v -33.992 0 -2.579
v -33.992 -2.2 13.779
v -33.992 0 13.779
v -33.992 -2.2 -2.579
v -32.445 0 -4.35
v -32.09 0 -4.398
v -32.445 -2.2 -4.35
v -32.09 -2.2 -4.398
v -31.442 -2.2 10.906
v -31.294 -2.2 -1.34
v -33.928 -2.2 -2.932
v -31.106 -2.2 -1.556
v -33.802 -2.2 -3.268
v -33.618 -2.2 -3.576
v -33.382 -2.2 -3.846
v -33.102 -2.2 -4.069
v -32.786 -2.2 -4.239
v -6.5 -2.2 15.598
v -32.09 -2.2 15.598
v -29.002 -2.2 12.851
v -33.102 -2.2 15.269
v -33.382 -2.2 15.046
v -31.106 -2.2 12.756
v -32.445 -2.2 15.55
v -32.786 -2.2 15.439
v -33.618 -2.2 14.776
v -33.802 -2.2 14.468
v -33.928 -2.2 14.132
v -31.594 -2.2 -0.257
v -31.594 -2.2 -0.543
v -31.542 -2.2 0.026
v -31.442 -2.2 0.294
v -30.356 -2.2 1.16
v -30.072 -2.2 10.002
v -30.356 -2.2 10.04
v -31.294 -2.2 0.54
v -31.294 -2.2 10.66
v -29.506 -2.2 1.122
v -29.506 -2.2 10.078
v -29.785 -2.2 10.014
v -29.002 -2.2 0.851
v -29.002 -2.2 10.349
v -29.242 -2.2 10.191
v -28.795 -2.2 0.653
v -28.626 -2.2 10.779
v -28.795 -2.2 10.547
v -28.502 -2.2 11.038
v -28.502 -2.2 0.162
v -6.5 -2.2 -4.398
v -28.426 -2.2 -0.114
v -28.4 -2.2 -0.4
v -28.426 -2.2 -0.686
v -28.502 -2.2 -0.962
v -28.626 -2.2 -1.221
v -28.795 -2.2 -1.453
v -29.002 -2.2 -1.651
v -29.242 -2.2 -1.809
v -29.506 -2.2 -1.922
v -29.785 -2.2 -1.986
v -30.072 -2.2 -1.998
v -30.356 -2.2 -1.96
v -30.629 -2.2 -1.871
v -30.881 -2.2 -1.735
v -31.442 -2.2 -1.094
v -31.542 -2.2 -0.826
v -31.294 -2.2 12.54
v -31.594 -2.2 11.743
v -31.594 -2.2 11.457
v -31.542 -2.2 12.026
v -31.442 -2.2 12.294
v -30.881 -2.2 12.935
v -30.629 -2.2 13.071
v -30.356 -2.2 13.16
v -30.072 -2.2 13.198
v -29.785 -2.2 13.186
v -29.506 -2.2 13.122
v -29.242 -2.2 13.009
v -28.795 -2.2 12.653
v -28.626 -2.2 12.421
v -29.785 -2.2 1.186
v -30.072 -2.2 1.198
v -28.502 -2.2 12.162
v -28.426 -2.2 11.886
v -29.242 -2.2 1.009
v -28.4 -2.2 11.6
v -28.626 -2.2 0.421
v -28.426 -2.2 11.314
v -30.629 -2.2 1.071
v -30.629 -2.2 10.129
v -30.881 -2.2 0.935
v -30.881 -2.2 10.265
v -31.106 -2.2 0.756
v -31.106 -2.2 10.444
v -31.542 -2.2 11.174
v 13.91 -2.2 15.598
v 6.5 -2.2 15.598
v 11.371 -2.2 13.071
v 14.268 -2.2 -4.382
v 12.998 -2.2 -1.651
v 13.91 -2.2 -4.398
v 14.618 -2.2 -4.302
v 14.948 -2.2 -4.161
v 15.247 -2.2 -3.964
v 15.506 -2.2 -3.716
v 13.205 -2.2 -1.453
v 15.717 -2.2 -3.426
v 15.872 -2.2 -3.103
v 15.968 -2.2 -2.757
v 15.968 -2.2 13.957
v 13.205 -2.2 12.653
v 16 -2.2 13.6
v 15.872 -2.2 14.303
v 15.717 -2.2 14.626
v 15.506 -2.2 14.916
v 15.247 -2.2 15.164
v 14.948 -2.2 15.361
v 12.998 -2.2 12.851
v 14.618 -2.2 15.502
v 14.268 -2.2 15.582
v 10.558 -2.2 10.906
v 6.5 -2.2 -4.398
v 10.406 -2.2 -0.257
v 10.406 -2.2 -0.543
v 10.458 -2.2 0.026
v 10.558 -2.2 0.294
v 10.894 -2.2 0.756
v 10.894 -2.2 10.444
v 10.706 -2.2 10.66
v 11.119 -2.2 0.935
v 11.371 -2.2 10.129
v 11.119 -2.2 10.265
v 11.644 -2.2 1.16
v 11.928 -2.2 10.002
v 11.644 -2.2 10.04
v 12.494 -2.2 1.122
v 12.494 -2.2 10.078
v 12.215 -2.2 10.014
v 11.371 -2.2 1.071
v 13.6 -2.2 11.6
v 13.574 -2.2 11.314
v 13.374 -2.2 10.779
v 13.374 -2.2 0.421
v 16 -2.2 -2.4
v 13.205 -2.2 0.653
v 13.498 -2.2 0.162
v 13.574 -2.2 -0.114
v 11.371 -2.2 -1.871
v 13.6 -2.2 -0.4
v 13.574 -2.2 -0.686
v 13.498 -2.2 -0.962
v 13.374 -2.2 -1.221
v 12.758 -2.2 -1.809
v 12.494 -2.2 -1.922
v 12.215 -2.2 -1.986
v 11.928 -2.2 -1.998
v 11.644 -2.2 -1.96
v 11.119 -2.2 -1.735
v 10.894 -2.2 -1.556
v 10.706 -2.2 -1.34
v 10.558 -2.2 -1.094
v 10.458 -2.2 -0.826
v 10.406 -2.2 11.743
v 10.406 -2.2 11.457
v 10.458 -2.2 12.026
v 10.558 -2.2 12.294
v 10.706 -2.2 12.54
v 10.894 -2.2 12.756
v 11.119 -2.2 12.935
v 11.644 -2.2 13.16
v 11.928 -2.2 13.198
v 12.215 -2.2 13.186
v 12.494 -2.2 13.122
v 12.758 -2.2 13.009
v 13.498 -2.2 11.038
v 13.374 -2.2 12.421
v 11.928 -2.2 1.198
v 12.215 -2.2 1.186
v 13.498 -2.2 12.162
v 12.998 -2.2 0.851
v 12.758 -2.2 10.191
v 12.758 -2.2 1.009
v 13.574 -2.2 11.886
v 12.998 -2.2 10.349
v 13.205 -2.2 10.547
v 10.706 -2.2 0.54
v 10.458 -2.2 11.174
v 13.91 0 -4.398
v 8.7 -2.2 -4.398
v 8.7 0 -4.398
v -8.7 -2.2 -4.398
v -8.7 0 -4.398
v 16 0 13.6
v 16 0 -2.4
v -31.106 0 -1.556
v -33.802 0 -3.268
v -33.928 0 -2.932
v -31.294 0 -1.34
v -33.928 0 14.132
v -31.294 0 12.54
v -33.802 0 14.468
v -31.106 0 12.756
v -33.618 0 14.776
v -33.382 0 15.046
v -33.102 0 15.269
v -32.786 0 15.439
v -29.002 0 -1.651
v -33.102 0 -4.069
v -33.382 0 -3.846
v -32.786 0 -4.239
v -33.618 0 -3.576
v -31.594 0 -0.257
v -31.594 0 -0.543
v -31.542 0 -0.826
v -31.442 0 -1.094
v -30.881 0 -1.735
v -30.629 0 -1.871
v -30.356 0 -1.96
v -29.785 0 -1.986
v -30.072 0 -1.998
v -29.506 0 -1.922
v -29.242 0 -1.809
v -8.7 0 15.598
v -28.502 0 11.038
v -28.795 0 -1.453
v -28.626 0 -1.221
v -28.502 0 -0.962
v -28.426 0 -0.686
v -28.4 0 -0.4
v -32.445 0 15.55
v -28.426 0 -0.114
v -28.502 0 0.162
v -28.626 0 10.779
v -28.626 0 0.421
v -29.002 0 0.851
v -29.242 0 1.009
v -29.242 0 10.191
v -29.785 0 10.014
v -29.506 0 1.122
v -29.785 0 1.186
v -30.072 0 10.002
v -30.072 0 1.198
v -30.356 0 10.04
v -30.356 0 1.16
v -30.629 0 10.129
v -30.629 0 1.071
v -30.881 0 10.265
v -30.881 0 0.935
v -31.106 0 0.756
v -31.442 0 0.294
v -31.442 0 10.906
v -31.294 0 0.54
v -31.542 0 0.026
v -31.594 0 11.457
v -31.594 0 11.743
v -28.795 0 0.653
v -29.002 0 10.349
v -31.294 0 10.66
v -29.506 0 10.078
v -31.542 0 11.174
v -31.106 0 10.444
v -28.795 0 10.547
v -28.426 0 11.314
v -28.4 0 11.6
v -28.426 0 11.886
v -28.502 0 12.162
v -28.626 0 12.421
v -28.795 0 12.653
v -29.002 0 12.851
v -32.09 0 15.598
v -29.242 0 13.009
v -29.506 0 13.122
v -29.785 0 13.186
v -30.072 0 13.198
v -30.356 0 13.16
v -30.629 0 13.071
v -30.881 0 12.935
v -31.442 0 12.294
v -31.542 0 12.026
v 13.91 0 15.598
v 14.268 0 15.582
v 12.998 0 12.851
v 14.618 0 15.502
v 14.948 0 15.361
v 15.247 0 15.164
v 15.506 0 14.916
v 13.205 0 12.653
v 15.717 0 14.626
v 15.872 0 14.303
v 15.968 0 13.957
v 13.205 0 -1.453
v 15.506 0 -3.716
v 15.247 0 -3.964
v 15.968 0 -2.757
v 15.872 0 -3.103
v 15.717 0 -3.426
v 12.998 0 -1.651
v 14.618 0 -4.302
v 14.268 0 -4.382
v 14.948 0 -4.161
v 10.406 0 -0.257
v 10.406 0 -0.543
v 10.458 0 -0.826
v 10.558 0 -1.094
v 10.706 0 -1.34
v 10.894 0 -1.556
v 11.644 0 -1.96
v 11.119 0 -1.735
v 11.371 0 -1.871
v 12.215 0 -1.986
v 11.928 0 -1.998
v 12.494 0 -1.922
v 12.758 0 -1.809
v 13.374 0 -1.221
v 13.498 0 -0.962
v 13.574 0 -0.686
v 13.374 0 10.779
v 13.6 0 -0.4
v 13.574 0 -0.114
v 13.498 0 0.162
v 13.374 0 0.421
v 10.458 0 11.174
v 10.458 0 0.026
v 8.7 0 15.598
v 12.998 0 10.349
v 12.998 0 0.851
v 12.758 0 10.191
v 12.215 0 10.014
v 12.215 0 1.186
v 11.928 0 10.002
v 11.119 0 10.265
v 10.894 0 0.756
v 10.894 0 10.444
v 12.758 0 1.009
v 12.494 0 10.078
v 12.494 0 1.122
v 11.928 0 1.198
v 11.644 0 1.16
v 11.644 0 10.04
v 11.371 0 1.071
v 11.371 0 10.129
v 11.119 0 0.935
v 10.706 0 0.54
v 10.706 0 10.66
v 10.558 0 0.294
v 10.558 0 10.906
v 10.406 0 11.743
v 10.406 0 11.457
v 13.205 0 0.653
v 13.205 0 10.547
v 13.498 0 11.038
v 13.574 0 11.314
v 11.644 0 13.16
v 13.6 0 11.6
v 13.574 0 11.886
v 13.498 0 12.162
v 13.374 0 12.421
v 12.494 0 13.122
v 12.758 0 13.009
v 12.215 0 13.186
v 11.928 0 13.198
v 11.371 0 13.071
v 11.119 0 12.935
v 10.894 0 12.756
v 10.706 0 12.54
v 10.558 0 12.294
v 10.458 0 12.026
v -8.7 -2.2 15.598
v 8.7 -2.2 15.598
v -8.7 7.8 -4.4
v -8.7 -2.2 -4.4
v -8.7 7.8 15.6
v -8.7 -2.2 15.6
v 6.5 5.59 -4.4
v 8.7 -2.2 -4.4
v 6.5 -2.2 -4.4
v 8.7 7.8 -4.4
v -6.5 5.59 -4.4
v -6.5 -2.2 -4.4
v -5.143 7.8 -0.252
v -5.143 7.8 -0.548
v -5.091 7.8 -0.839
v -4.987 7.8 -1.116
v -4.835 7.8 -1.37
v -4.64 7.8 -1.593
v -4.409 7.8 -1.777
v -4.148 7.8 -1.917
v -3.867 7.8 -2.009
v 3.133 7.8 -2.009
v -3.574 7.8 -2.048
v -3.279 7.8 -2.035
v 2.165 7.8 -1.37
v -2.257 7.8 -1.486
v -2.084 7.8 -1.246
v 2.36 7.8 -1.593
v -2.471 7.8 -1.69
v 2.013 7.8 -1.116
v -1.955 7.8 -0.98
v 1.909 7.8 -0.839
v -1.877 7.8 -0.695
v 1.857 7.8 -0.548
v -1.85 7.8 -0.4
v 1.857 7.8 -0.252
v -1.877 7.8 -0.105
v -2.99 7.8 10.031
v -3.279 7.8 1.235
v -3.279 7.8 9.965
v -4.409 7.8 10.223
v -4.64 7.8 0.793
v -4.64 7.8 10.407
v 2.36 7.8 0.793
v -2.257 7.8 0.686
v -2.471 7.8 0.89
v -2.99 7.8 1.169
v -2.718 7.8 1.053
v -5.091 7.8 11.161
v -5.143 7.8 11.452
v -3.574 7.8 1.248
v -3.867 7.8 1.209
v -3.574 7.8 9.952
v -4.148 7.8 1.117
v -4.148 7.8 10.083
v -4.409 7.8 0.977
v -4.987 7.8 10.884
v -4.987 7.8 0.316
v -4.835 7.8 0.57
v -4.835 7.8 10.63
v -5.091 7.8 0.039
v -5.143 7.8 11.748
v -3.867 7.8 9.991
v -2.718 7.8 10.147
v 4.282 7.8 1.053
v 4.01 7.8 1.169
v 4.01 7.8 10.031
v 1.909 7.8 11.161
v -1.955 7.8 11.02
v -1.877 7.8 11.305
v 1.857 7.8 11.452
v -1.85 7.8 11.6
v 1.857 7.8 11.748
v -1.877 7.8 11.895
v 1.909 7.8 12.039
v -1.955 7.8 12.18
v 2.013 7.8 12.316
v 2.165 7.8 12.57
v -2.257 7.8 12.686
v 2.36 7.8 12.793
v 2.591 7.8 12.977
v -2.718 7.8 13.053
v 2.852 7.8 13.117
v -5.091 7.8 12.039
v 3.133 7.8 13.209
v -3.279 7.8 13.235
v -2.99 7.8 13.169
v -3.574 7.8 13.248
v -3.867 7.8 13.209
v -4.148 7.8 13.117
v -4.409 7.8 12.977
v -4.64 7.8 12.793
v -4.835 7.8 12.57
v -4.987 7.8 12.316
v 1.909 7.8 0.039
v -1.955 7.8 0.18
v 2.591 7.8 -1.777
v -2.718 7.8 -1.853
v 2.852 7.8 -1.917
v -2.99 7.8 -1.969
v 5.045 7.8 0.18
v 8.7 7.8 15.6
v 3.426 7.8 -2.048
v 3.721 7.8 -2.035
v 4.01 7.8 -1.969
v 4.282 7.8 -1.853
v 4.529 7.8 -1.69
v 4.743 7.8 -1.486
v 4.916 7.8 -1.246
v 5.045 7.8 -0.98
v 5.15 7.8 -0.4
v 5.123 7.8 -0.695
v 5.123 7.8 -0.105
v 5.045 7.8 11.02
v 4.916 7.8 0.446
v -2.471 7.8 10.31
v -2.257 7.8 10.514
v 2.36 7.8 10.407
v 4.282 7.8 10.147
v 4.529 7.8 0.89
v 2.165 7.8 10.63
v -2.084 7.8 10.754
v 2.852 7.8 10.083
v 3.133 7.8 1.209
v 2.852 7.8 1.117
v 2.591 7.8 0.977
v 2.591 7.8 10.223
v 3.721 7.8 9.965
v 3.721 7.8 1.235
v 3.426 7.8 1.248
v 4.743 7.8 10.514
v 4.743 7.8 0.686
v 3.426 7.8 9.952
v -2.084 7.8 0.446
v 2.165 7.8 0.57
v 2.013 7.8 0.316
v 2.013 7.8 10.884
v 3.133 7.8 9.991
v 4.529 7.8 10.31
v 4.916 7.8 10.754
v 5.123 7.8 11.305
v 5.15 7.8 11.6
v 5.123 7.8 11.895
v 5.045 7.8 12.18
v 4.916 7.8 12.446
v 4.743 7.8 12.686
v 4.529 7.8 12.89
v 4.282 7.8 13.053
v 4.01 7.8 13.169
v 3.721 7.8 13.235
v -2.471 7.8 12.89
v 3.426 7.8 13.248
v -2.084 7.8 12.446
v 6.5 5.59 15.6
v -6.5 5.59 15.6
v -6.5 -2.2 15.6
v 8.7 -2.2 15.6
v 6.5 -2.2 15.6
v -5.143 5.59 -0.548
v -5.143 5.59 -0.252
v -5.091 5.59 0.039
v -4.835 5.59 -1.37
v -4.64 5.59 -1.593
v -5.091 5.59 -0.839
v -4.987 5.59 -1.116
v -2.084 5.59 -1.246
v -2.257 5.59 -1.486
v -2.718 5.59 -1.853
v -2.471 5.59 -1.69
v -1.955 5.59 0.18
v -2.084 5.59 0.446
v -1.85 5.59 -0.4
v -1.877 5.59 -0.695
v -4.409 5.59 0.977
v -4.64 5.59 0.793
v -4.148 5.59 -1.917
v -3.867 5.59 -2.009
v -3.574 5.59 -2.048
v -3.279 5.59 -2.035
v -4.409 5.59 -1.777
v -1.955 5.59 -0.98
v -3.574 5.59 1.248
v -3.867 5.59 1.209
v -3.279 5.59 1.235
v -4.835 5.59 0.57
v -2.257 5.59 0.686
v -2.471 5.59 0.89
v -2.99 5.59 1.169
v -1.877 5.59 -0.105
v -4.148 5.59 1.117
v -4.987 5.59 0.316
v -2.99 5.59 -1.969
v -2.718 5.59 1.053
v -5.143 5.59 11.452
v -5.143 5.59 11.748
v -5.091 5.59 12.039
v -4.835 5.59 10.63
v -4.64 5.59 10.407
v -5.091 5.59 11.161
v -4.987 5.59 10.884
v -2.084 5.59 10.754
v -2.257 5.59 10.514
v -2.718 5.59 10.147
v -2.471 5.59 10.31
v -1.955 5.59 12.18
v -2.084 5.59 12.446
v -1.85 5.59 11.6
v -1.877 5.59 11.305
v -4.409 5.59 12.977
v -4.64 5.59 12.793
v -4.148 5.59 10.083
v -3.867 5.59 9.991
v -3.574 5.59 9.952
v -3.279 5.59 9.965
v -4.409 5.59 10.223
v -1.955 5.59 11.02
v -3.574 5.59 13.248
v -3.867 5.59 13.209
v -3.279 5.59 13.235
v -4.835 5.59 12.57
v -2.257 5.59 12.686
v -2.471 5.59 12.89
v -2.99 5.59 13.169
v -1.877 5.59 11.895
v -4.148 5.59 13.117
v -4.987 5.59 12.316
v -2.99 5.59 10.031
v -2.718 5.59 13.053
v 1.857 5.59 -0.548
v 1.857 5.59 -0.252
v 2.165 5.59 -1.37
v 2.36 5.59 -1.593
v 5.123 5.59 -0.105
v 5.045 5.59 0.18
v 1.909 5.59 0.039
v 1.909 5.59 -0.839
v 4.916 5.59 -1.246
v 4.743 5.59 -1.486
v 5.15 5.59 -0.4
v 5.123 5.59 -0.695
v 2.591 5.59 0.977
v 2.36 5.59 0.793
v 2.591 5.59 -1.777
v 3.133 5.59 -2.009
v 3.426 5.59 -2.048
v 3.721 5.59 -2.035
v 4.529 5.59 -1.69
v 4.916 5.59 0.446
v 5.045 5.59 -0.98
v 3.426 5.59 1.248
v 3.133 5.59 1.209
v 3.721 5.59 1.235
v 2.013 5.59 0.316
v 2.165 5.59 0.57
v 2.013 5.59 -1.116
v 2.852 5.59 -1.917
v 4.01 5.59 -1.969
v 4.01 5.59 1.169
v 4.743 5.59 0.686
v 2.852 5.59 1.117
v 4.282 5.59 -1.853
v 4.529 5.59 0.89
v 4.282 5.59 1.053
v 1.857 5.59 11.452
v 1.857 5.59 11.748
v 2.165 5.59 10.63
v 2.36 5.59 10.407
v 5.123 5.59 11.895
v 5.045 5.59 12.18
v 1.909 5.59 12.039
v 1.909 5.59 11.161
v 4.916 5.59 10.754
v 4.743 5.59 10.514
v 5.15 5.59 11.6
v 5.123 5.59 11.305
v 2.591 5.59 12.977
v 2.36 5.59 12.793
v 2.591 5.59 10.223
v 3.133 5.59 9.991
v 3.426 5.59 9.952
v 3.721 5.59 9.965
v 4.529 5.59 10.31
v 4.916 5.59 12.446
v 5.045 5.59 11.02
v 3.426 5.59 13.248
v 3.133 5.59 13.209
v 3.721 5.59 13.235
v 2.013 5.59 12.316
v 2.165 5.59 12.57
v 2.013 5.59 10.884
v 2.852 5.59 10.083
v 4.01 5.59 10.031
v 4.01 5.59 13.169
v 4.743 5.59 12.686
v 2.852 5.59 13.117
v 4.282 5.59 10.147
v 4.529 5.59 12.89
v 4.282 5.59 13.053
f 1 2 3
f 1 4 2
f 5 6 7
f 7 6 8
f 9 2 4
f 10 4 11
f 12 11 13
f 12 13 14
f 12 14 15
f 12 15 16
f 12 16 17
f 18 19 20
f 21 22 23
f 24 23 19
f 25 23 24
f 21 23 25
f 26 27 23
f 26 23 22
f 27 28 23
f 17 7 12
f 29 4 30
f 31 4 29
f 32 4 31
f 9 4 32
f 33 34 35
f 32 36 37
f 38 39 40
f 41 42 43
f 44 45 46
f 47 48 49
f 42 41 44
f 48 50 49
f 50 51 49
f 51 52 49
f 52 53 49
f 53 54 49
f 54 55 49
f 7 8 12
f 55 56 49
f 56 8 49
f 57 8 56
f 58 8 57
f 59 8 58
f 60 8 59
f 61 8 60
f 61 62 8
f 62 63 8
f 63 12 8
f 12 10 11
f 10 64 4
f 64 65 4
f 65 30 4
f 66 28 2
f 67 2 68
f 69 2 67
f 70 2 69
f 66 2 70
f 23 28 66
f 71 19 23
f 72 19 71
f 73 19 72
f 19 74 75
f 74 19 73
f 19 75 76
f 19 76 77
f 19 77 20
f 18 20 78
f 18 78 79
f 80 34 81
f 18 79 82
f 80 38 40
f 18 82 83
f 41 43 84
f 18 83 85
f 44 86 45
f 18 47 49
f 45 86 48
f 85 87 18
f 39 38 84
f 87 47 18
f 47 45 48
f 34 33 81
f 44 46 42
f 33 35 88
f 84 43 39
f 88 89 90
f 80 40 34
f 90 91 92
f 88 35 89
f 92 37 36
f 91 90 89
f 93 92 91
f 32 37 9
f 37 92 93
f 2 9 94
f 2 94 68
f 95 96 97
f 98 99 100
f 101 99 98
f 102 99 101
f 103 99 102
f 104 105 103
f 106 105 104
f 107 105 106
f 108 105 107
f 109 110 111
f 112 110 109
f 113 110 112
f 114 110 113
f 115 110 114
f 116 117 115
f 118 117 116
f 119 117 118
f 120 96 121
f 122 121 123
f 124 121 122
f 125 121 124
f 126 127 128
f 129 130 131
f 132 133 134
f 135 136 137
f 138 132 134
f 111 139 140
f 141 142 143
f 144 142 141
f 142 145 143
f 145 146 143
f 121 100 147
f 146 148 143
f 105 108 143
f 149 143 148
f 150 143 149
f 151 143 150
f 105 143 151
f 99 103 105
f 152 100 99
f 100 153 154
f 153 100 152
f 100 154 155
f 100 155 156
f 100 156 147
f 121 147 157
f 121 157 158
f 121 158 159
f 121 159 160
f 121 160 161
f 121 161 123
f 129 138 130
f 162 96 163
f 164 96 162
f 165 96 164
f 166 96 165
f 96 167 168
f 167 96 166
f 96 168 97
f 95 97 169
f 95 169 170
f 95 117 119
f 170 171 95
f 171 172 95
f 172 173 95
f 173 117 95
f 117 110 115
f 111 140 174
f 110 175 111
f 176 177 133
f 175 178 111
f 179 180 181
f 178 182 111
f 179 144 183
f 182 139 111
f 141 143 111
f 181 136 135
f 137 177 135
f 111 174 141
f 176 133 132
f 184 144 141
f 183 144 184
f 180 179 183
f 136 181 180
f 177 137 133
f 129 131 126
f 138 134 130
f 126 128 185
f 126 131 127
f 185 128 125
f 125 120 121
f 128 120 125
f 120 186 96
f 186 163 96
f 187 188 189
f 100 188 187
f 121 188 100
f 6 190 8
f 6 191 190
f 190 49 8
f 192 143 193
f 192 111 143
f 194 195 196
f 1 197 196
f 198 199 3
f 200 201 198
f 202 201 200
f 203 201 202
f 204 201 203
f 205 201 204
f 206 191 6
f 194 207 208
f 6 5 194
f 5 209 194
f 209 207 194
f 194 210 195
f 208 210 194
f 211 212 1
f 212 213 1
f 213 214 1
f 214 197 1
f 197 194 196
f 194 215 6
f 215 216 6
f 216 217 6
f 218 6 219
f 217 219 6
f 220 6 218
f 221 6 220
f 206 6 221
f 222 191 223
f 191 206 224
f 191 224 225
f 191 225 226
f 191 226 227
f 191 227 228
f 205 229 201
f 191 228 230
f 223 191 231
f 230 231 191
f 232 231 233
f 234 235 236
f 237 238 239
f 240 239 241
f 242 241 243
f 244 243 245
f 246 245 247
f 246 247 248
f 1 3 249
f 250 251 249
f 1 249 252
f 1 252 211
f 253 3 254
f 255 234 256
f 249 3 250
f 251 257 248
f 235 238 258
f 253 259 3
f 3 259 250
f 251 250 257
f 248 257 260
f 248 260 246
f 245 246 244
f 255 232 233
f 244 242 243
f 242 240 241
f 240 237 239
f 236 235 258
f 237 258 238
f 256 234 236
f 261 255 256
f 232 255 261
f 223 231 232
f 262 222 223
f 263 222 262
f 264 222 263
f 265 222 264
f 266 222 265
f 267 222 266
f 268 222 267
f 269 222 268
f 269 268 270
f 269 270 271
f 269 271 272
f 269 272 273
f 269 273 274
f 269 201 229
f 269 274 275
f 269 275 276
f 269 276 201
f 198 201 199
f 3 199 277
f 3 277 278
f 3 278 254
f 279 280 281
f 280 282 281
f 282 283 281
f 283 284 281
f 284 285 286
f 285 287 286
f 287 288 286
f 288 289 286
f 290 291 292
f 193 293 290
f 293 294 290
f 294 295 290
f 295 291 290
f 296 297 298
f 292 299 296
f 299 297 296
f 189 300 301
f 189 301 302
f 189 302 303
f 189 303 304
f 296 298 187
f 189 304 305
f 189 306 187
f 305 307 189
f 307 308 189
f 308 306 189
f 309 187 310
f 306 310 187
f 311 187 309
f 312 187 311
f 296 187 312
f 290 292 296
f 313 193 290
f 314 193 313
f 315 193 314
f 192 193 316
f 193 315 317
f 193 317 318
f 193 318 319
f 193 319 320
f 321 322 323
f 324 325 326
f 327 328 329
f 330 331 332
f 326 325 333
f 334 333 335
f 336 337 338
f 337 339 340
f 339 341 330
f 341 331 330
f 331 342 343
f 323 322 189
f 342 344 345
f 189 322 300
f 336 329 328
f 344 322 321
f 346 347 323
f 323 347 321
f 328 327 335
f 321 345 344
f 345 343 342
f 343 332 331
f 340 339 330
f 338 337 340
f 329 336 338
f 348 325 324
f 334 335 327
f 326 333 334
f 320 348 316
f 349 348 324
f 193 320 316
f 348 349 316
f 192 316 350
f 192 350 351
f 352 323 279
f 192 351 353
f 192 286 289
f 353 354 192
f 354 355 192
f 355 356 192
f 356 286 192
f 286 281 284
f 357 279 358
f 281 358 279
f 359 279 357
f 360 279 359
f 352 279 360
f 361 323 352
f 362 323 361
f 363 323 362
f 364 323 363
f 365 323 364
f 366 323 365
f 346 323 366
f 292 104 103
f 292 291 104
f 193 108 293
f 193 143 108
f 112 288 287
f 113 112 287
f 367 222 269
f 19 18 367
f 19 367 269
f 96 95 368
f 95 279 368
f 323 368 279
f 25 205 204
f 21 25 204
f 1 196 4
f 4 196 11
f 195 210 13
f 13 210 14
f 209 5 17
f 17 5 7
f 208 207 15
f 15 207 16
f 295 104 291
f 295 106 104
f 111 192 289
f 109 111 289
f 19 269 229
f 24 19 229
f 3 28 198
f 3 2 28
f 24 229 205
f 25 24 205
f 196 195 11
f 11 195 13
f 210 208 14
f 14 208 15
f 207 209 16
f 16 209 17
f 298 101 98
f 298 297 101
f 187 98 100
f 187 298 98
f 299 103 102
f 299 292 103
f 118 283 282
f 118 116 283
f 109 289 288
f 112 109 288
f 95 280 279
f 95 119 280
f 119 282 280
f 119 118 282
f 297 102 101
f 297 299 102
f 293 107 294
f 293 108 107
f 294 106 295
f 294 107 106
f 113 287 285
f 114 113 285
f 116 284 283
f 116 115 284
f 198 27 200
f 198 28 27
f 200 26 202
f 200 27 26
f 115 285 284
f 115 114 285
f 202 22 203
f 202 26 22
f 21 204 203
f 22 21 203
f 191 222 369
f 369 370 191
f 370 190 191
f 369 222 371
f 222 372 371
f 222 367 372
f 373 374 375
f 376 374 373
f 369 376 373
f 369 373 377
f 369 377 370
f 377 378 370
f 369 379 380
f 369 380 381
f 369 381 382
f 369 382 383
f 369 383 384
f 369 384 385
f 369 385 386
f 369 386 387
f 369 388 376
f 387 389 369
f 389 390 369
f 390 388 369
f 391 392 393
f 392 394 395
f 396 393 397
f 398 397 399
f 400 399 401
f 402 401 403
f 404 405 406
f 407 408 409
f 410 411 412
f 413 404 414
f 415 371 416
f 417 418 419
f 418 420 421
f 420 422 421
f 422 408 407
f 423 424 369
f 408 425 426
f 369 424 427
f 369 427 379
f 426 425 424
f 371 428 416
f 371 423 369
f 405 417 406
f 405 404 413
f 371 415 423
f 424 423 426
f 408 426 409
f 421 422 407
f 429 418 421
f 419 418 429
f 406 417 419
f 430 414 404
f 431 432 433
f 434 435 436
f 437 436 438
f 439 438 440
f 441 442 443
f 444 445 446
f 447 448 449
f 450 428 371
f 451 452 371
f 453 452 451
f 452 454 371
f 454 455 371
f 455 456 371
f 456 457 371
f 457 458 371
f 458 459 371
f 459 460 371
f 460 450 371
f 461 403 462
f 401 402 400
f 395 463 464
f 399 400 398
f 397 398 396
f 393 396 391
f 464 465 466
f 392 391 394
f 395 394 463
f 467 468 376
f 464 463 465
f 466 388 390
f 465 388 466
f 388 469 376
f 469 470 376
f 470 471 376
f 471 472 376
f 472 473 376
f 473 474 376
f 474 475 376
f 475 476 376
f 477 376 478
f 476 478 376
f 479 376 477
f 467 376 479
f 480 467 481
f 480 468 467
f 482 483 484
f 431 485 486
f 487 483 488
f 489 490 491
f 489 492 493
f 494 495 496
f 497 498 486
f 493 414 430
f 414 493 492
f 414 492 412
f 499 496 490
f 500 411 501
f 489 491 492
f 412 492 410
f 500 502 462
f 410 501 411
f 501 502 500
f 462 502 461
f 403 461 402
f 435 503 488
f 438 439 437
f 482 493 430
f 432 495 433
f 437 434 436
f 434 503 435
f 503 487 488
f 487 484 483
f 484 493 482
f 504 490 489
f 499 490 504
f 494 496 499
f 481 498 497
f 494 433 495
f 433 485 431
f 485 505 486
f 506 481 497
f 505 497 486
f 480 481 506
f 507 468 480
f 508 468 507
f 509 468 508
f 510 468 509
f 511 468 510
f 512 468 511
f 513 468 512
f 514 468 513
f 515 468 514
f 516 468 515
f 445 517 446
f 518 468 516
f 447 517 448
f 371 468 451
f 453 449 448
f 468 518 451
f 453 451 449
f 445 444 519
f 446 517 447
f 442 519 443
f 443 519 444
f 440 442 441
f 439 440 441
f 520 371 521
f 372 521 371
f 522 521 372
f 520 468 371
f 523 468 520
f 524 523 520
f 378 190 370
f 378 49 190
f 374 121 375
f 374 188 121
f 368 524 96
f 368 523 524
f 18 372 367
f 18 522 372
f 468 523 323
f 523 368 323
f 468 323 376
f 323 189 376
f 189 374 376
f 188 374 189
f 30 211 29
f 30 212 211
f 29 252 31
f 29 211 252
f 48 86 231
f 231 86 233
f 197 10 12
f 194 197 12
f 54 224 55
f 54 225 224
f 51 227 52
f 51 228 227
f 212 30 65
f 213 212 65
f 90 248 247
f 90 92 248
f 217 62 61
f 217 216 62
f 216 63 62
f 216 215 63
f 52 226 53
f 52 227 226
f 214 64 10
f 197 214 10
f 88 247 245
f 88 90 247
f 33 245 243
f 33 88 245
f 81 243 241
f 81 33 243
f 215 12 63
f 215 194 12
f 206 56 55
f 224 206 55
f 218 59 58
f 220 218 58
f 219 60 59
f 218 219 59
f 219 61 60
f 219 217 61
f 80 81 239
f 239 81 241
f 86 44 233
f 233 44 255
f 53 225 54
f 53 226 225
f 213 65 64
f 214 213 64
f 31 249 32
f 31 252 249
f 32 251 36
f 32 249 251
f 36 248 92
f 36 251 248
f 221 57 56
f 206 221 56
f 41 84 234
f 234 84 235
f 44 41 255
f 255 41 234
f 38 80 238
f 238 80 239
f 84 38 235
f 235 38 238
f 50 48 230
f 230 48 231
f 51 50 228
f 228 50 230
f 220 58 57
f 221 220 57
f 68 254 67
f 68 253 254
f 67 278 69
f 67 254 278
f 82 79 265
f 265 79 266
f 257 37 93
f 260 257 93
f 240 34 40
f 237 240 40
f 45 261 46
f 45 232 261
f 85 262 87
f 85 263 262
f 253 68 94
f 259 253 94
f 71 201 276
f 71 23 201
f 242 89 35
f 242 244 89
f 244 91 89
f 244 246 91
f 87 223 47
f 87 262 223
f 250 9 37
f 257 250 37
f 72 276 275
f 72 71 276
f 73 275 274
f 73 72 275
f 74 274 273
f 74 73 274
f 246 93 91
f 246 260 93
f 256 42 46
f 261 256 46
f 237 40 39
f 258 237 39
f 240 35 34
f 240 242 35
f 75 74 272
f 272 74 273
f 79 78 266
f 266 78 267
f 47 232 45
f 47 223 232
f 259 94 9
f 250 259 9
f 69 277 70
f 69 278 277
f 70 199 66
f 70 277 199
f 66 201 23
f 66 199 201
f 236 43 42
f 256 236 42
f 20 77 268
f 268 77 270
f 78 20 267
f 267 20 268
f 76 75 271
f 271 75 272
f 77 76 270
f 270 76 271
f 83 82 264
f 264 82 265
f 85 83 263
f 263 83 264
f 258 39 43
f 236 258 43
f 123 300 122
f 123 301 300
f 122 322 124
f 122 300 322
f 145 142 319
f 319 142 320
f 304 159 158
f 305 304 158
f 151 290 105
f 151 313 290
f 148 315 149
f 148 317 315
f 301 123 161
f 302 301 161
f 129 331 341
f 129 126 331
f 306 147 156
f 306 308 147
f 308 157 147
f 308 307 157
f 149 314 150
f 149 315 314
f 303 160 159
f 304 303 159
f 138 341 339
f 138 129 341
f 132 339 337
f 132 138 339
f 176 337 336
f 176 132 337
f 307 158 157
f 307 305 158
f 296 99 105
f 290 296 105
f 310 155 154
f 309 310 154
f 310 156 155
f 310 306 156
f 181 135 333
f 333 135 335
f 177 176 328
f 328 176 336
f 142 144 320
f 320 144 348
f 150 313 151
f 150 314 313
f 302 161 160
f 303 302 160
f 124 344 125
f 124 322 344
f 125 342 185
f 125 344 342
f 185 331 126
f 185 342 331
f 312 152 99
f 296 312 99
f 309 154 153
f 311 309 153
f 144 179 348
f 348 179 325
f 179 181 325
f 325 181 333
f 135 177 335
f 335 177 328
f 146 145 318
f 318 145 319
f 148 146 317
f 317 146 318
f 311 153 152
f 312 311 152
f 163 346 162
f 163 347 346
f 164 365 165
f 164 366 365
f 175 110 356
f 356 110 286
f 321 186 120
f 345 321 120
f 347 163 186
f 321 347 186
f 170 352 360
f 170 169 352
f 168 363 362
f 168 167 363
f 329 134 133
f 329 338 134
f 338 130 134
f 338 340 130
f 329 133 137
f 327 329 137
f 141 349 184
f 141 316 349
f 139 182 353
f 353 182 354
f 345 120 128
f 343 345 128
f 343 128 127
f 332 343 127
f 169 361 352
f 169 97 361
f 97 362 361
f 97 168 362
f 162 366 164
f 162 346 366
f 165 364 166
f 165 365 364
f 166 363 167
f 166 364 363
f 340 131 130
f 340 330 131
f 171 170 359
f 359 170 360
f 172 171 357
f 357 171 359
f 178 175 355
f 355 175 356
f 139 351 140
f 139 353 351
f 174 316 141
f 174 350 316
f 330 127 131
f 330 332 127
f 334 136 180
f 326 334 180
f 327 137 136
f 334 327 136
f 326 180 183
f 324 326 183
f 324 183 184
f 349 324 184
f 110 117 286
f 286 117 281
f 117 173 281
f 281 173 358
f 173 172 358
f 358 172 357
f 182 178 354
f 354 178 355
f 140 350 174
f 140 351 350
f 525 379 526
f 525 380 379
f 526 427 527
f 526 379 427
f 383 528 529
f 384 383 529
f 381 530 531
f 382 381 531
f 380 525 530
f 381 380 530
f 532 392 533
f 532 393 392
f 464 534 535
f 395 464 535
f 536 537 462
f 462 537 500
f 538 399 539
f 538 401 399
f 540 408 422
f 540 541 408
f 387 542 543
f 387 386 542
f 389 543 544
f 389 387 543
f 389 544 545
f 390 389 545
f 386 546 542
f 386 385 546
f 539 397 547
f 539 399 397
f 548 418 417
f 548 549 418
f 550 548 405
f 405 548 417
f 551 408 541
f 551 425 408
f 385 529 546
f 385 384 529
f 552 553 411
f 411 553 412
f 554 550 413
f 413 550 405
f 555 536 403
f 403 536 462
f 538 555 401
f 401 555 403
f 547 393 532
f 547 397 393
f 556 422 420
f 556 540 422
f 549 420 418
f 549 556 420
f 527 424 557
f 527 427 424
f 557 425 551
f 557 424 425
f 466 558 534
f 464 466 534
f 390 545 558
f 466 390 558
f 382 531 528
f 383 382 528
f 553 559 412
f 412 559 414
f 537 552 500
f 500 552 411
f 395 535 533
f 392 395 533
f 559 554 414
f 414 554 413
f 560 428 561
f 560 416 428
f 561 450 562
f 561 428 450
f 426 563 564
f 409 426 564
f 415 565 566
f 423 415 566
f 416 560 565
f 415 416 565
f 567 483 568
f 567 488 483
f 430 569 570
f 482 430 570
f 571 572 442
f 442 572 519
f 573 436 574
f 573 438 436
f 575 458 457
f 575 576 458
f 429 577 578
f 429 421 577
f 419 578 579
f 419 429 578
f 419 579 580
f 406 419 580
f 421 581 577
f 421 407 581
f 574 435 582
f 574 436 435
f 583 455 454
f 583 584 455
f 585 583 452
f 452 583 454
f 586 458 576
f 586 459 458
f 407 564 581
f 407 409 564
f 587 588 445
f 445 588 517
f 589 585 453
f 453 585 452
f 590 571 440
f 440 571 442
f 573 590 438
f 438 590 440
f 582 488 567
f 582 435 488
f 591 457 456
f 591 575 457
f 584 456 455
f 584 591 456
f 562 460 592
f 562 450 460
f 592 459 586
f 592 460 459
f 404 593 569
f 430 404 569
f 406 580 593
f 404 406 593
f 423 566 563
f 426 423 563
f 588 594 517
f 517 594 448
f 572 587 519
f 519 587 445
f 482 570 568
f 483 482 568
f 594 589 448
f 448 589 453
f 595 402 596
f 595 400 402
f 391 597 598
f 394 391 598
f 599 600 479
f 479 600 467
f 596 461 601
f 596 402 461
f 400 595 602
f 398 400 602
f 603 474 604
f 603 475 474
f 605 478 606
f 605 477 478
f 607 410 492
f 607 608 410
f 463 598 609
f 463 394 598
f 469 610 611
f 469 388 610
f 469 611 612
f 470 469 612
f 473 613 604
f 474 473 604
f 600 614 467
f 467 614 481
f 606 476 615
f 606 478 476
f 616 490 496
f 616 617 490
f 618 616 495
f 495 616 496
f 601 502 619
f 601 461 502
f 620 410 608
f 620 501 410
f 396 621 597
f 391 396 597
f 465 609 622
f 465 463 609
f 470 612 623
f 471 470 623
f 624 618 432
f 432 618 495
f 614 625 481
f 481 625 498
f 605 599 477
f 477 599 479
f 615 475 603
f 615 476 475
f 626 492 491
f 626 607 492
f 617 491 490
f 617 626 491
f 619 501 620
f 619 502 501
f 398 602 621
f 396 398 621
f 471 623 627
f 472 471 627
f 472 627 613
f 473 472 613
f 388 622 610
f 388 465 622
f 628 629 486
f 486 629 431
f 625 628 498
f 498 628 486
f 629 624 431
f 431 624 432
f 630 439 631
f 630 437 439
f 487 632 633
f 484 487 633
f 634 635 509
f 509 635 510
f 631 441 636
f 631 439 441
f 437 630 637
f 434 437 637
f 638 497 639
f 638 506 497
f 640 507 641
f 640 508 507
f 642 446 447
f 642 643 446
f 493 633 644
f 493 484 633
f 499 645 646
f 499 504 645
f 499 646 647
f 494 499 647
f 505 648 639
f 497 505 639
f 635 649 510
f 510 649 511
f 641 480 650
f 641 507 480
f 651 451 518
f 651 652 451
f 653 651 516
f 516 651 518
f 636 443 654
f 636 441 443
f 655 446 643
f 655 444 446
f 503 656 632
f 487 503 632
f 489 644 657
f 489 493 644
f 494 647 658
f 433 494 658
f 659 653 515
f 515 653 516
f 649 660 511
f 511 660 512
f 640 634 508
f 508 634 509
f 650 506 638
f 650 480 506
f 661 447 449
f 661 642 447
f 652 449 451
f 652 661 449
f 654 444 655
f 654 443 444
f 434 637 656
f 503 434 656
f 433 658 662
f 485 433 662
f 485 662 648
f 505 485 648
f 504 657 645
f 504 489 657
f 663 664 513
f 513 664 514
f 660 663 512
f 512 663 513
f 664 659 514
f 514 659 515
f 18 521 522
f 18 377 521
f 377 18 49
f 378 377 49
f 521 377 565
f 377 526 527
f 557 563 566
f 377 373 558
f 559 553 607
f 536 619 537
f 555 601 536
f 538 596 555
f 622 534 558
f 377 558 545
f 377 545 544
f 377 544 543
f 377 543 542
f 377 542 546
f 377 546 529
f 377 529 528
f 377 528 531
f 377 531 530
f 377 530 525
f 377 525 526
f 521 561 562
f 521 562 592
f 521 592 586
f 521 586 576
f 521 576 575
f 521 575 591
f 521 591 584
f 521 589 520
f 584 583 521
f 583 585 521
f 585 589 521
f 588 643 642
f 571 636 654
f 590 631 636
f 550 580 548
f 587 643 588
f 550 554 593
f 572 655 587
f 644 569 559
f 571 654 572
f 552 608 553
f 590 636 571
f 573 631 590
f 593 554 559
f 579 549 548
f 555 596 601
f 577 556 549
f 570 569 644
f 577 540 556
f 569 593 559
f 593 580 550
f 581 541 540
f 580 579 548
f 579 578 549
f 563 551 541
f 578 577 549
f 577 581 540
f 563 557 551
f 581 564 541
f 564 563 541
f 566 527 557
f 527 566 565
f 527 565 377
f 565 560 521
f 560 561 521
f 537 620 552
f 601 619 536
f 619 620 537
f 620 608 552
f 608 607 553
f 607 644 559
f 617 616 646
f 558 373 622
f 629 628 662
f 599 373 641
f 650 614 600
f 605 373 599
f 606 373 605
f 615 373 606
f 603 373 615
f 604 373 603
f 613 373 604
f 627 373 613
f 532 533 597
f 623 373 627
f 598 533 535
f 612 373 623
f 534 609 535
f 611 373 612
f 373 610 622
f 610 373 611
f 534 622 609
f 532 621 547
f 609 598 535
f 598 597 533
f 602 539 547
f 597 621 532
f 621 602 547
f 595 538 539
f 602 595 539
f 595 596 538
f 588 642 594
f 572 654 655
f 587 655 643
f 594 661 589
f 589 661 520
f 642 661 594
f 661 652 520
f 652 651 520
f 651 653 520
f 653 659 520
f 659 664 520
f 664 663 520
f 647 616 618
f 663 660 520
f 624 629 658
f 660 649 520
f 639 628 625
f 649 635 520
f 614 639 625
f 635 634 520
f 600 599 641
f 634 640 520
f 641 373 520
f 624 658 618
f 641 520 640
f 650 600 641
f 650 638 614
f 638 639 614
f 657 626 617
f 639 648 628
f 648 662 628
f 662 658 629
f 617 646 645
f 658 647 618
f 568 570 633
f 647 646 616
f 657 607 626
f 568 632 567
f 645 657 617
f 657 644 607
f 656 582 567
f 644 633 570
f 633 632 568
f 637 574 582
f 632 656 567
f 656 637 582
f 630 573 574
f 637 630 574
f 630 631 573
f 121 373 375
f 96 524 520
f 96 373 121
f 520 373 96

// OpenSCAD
// file: ../../util/rounded.scad
// Do a rounded cube
module rounded(x=10, y=10, z=10, r=3, center=false) {
  if (center) {
    translate([-(x/2),-(y/2),0])
      rounded(x, y, z, r);
  } else {
    translate([r,r,0])
    minkowski() {
      cube([x-2*r,y-2*r,z/2]);
      cylinder(h=z/2, r=r);
    }
  }
}
// file: ../../util/hole3.scad
module hole3()
{
    cylinder(d=3.5, h=99, center=true);
}
// file: ../../util/repeat4.scad
module repeat4()
{
    for (r=[0:3])
    rotate([0,0,90*r])
    children();
}
// file: ../../util/hexapath.scad
// Follow an hexagonal path
module hexapath(X, Y, thickness, center=false)
{
    union() {
        linear_extrude(thickness, center=center)
            polygon(points=[
                    [X, Y], [X, -Y], 
                    [Y, -X], [-Y, -X],
                    [-X, -Y], [-X, Y],
                    [-Y, X], [Y, X], 
            ]);
    }
}
// file: ../../models/ollo.scad
// Diameter of plastic ollo holes
OlloHoles = 4.3;

// Width of Ollo "real" plastic
OlloWidth = 3;

// Distance between two ollo holes
OlloSpacing = 6;

// Do an Ollo hole on the part
module olloHole(depth=2.2)
{
    translate([0,0,-0.1])
      cylinder(depth+0.2, OlloHoles/2, OlloHoles/2);
}

// Do 3 ollo holes
module threeOllo(depth=2.2)
{
  for (xy=[[-OlloSpacing,0],[0,0],[OlloSpacing,0]]) {
    translate([xy[0], xy[1], 0])
    olloHole(depth);
  }
}

// Do a servo arm holes
module servoArm(depth=2.2)
{
    threeOllo(depth);
    rotate([0,0,90])
      threeOllo(depth);
}
// file: ../../parts/batfix.scad
include <../models/ollo.scad>;
use <../util/rounded.scad>;
use <../util/screws.scad>;

module batfix(thickness=2.2, cavity=13, height=10, screws=3.2,print=false)
{
	shift=9;
	holesSpacingW = OlloSpacing*7;
	holesSpacingH = OlloSpacing*2;
	R=print?[90,0,0]:[0,0,0];
	translate([-shift,0,height-2*thickness])
	rotate(R)
	difference() {
		union() {
			rounded(50, 20, thickness, 2, center=true);
			translate([shift,0,thickness-height/2])
			cube([cavity+2*thickness,20,height], center=true);
		}
		
		for (X=[-holesSpacingW/2, holesSpacingW/2])
		for (Y=[-holesSpacingH/2, holesSpacingH/2])
		translate([X,Y,-1])			
			cylinder(d=screws, h=thickness+2);
		
		translate([shift,0,0.01+2*thickness-height/2])
			cube([cavity,22,height], center=true);
		
		translate([shift,0,thickness-height])
			children();
	}
}

batfix();
// file: ../../parts/leg.scad
use <../models/ollo.scad>;
use <../util/rounded.scad>;

module leg(sizeA=60, sizeB=20, sizeC=20, sizeBottom=10,
        sizeTop=15, mode="arm", fixationAngle=0, thickness=2.2, print=false)
{
    xOffset = (mode == "side") ? -10 : 0;
    spacing = (mode == "side") ? 24 : 30;

    module legSide()
    {
        difference() {
            union() {
                translate([0,0,sizeA/2])
                    rotate([0,90,0]) {
                        cube([sizeA, 20, thickness], center=true);
                        if (mode == "side") {
                            translate([15-sizeA/2, 10, -thickness/2])
                                rotate([0,0,+fixationAngle])
                                rounded(25,10,thickness, center=true);
                        }
                    }
            }
            translate([-thickness, 0, sizeA-15]) {
                rotate([90,0,90]) {
                    if (mode == "arm") {
                        servoArm(2*thickness);
                    }
                }
                if (mode == "side") {
                    translate([0,10,0])
                        rotate([90,90-fixationAngle,90])
                        threeOllo(2*thickness);
                }
            }
        }
        translate([-thickness/2,0,sizeA]) {
            rotate([90,0,90])
                linear_extrude(thickness)
                polygon([[-10,0],[-1,sizeTop],[1,sizeTop],[10,0]]);
        }
    }

    module biais() {
        Dx = (spacing-sizeBottom)/2;
        Dy = sizeC;
        Dl = sqrt(pow(Dx,2)+pow(Dy,2));

        translate([-(spacing/2)-thickness,-10,-(sizeB+thickness/2)])
            rotate([0,atan2(Dy,Dx),0])
            cube([Dl,20,thickness]);
    }

    if (print) {
        translate([0,0,10-xOffset])
            rotate([90,0,0])
            leg(sizeA, sizeB, sizeC, sizeBottom,
                    sizeTop, mode, fixationAngle, thickness, false);
    } else {
        echo("[PART] leg");
        translate([0,xOffset,-sizeA+15]) {
            cube([spacing+thickness*2, 20, thickness], center=true);

            translate([spacing/2+thickness/2,0,0])
                legSide();
            translate([-(spacing/2+thickness/2),0,0])
                legSide();

            translate([0,0,-sizeB])
                cube([spacing+thickness*2, 20, thickness], center=true);
            translate([spacing/2+thickness/2,0,-sizeB/2])
                cube([thickness,20,sizeB], center=true);
            translate([-(spacing/2+thickness/2),0,-sizeB/2])
                cube([thickness,20,sizeB], center=true);

            translate([0,0,-(sizeB+sizeC)])
                cube([sizeBottom+thickness*2, 20, thickness], center=true);

            biais();
            mirror([1,0,0]) {
                biais();
            }
        }
    }
}

leg();
// file: ../../parts/side.scad
include <../models/ollo.scad>;
use <../util/rounded.scad>;

module side(size=40, holesToBorder=5, thickness=2.2, print=false) {
    if (print) {
        translate([0,-size+holesToBorder,0])
            side(size,holesToBorder,thickness,false);
    } else {
        echo("[PART] side");
        translate([0,size-holesToBorder,0]) {
            difference() {
                rounded(20, size*2, thickness, 5, true);
                for (y=[size-holesToBorder,	 -size+holesToBorder,
                        size-holesToBorder-3*OlloSpacing, -size+holesToBorder+3*OlloSpacing]) {
                    translate([0, y, 0])
                        threeOllo();
                }
            }
        }
    }
}

side();
// file: ../../parts/u.scad
use <../models/ollo.scad>;

module u(height=15, radius=8, thickness=2.2, screwsSpacing=10, screwsDiameter=2.6, screws=true, olloScrew=false, widthSize=15, print=false) {
    module Ubranch() {
        union() {  
            cylinder(thickness, 10, 10);
            translate([-10,0,0])
                cube([20, height, thickness]);
        }
    }

    module USide() {
        difference() {
            union() {
                Ubranch();
                translate([-10,height+radius-thickness,radius])
                    cube([20,thickness,widthSize-(radius-thickness)]);
                translate([-10,height,radius]) {
                    rotate([0,90,0]) {
                        difference() {
                            cylinder(20,radius,radius);
                            translate([0,0,-1])
                                cylinder(22,radius-thickness,radius-thickness);
                            translate([-10+radius-thickness,-10,-1])
                                cube([10,10,22]);
                            translate([-10,-20+radius-thickness,-1])
                                cube([10,20.01,22]);
                        }
                    }
                }
            }
            servoArm(depth=6);
        }
    }

    module UScrews() {
        for (x=[-screwsSpacing/2,screwsSpacing/2]) {
            for (y=[-screwsSpacing/2,screwsSpacing/2]) {
                rotate([270,0,0])
                    translate([x,y,0])
                    cylinder(d=screwsDiameter, h=100);
            }
        }
    }

	module UOllo() {
		rotate(-90, [1,0,0])
			servoArm(2*height);
	}

    if (print) {
        translate([0,0,10])
            rotate([0,90,0])
            u(height,radius,thickness,screwsSpacing,screwsDiameter,
                screws,olloScrew,widthSize,false);
    } else {
        echo("[PART] u");
        difference() {
            translate([0,0,-widthSize-thickness]) {
                USide();
                mirror([0,0,1]) translate([0,0,-2*thickness-2*widthSize])  
                    USide();
            }
            if (screws) {
                UScrews();
            }
            if (olloScrew) {
                UOllo();
            }
        }
    }
}

u();
// file: ../../parts/body.scad
use <../models/ollo.scad>;
use <../util/hexapath.scad>;
use <../util/repeat4.scad>;
use <../util/hole3.scad>;

$fn=25;

module body(thickness=2.2, type="top", print=false) {
    // The layout path
    X=45;
    Y=15;
    
    difference() {
        // Making the exernal path
        hexapath(X, Y, thickness=thickness);
        
        if (type == "top") {
            // Craving the board to make it accessible
            hexapath(X-8, Y-8, thickness=99, center=true);
            
            // Adding holes for the magnets
            repeat4()
            translate([41,0,0])
            hole3();
        } else if (type == "bottom") {
            // Adding holes for the XBoard
            repeat4()
            translate([35, 11.5, 0])
            hole3();
        }
        
        // Motors fixation
        repeat4()
        rotate([0,0,45])
        translate([38,0,0])
        rotate([0,0,90])
        threeOllo();
    }
    
}

body(type="top");
// file: ../../util/screws.scad
module screws(count=4, radius=5, size=3.3, thickness=2.2)
{
	for (screw=[1:count]) {
		rotate([0,0,screw*360/count])
		translate([radius,0,-1])
		cylinder(d=size, h=thickness+2);
	}
}

module squareScrews(w=10, h=10, size=3.3, thickness=2.2) {
	for (X=[-w/2, w/2])
	for (Y=[-h/2, h/2])
	translate([X,Y,-1])		
		cylinder(d=size, h=thickness+2);
}
// file: ../parts.scad
include <config.scad>;
use <../util/screws.scad>;
use <../parts/body.scad>;
use <../parts/u.scad>;
use <../parts/side.scad>;
use <../parts/leg.scad>;
use <../parts/batfix.scad>;

module metabot_colorize() {
    color(PartsColor)
        children();
}

module metabot_u(print=false) {
    metabot_colorize()
        u(UHeight, URadius, Thickness, UScrewsSpacing, UScrewsDiameter, print=print);
}

module metabot_leg(print=false) {
    metabot_colorize()
        leg(LegSizeA, LegSizeB, LegSizeC, LegSizeBottom,
                LegSizeTop, (MotorsPerLeg == 2 ? "side" : "arm"), L3Angle, Thickness, print=print);
}

module metabot_body_screws() {
	squareScrews(BodyScrewsW, BodyScrewsH, BodyScrewsSize, Thickness);
}

module metabot_body(print=false, top=false) {
    metabot_colorize()
        body(BodySize, Legs, Thickness, print=print)
		if (top && BodyScrews) {
			metabot_body_screws();
		}
}

module metabot_side(print=false) {
    metabot_colorize()
        side(SideSize, SideHolesToBorder, Thickness, print=print);
}

module metabot_batfix(print=false) {
	metabot_colorize()
    	batfix(print=print)
        	metabot_body_screws();
}
// file: ../config.scad
// Number of legs
Legs = 4;

// Size of the body
BodySize = 22;

// Number of motors per leg (2 or 3)
MotorsPerLeg = 3;

// Static L3 angle (used only if 2 motors per leg)
L3Angle = -5;

// Color of the parts, for rendering
PartsColor = [0.8, 0.8, 0.8];

// Thickness of parts (2.2 is good for Ollo rivets)
Thickness = 2.2;

// Sizes of the parts of the leg
// Ratio of leg parts
LegSize = 100;
LegSizeA = (0.60)*LegSize;
LegSizeB = (0.20)*LegSize;
LegSizeC = (0.20)*LegSize;

// Width of the bottom part of the leg
LegSizeBottom = 10;

// Size of the "top" part of the legs, in mm
LegSizeTop = 30;

// Body screws
BodyScrews = true;
BodyScrewsSize = 3.3;
BodyScrewsW = 7;
BodyScrewsH = 12;

// Motor dimensions
MotorWidth = 24;
MotorHeight = 36;
MotorDepth = 24;
MotorArmOffset = 9;

// U dimensions
UHeight = 15.2;
URadius = 8;
UWidth = 30+Thickness/2;
UTotalHeight = UHeight+URadius;
UScrewsSpacing = 10;
UScrewsDiameter= 3.3;

// Side dimensions
SideSize = 35;
SideHolesToBorder = 5;

// Defining the resolution
$fn=35;
// main file
include <../config.scad>;
use <../parts.scad>;

metabot_batfix(print=true);
